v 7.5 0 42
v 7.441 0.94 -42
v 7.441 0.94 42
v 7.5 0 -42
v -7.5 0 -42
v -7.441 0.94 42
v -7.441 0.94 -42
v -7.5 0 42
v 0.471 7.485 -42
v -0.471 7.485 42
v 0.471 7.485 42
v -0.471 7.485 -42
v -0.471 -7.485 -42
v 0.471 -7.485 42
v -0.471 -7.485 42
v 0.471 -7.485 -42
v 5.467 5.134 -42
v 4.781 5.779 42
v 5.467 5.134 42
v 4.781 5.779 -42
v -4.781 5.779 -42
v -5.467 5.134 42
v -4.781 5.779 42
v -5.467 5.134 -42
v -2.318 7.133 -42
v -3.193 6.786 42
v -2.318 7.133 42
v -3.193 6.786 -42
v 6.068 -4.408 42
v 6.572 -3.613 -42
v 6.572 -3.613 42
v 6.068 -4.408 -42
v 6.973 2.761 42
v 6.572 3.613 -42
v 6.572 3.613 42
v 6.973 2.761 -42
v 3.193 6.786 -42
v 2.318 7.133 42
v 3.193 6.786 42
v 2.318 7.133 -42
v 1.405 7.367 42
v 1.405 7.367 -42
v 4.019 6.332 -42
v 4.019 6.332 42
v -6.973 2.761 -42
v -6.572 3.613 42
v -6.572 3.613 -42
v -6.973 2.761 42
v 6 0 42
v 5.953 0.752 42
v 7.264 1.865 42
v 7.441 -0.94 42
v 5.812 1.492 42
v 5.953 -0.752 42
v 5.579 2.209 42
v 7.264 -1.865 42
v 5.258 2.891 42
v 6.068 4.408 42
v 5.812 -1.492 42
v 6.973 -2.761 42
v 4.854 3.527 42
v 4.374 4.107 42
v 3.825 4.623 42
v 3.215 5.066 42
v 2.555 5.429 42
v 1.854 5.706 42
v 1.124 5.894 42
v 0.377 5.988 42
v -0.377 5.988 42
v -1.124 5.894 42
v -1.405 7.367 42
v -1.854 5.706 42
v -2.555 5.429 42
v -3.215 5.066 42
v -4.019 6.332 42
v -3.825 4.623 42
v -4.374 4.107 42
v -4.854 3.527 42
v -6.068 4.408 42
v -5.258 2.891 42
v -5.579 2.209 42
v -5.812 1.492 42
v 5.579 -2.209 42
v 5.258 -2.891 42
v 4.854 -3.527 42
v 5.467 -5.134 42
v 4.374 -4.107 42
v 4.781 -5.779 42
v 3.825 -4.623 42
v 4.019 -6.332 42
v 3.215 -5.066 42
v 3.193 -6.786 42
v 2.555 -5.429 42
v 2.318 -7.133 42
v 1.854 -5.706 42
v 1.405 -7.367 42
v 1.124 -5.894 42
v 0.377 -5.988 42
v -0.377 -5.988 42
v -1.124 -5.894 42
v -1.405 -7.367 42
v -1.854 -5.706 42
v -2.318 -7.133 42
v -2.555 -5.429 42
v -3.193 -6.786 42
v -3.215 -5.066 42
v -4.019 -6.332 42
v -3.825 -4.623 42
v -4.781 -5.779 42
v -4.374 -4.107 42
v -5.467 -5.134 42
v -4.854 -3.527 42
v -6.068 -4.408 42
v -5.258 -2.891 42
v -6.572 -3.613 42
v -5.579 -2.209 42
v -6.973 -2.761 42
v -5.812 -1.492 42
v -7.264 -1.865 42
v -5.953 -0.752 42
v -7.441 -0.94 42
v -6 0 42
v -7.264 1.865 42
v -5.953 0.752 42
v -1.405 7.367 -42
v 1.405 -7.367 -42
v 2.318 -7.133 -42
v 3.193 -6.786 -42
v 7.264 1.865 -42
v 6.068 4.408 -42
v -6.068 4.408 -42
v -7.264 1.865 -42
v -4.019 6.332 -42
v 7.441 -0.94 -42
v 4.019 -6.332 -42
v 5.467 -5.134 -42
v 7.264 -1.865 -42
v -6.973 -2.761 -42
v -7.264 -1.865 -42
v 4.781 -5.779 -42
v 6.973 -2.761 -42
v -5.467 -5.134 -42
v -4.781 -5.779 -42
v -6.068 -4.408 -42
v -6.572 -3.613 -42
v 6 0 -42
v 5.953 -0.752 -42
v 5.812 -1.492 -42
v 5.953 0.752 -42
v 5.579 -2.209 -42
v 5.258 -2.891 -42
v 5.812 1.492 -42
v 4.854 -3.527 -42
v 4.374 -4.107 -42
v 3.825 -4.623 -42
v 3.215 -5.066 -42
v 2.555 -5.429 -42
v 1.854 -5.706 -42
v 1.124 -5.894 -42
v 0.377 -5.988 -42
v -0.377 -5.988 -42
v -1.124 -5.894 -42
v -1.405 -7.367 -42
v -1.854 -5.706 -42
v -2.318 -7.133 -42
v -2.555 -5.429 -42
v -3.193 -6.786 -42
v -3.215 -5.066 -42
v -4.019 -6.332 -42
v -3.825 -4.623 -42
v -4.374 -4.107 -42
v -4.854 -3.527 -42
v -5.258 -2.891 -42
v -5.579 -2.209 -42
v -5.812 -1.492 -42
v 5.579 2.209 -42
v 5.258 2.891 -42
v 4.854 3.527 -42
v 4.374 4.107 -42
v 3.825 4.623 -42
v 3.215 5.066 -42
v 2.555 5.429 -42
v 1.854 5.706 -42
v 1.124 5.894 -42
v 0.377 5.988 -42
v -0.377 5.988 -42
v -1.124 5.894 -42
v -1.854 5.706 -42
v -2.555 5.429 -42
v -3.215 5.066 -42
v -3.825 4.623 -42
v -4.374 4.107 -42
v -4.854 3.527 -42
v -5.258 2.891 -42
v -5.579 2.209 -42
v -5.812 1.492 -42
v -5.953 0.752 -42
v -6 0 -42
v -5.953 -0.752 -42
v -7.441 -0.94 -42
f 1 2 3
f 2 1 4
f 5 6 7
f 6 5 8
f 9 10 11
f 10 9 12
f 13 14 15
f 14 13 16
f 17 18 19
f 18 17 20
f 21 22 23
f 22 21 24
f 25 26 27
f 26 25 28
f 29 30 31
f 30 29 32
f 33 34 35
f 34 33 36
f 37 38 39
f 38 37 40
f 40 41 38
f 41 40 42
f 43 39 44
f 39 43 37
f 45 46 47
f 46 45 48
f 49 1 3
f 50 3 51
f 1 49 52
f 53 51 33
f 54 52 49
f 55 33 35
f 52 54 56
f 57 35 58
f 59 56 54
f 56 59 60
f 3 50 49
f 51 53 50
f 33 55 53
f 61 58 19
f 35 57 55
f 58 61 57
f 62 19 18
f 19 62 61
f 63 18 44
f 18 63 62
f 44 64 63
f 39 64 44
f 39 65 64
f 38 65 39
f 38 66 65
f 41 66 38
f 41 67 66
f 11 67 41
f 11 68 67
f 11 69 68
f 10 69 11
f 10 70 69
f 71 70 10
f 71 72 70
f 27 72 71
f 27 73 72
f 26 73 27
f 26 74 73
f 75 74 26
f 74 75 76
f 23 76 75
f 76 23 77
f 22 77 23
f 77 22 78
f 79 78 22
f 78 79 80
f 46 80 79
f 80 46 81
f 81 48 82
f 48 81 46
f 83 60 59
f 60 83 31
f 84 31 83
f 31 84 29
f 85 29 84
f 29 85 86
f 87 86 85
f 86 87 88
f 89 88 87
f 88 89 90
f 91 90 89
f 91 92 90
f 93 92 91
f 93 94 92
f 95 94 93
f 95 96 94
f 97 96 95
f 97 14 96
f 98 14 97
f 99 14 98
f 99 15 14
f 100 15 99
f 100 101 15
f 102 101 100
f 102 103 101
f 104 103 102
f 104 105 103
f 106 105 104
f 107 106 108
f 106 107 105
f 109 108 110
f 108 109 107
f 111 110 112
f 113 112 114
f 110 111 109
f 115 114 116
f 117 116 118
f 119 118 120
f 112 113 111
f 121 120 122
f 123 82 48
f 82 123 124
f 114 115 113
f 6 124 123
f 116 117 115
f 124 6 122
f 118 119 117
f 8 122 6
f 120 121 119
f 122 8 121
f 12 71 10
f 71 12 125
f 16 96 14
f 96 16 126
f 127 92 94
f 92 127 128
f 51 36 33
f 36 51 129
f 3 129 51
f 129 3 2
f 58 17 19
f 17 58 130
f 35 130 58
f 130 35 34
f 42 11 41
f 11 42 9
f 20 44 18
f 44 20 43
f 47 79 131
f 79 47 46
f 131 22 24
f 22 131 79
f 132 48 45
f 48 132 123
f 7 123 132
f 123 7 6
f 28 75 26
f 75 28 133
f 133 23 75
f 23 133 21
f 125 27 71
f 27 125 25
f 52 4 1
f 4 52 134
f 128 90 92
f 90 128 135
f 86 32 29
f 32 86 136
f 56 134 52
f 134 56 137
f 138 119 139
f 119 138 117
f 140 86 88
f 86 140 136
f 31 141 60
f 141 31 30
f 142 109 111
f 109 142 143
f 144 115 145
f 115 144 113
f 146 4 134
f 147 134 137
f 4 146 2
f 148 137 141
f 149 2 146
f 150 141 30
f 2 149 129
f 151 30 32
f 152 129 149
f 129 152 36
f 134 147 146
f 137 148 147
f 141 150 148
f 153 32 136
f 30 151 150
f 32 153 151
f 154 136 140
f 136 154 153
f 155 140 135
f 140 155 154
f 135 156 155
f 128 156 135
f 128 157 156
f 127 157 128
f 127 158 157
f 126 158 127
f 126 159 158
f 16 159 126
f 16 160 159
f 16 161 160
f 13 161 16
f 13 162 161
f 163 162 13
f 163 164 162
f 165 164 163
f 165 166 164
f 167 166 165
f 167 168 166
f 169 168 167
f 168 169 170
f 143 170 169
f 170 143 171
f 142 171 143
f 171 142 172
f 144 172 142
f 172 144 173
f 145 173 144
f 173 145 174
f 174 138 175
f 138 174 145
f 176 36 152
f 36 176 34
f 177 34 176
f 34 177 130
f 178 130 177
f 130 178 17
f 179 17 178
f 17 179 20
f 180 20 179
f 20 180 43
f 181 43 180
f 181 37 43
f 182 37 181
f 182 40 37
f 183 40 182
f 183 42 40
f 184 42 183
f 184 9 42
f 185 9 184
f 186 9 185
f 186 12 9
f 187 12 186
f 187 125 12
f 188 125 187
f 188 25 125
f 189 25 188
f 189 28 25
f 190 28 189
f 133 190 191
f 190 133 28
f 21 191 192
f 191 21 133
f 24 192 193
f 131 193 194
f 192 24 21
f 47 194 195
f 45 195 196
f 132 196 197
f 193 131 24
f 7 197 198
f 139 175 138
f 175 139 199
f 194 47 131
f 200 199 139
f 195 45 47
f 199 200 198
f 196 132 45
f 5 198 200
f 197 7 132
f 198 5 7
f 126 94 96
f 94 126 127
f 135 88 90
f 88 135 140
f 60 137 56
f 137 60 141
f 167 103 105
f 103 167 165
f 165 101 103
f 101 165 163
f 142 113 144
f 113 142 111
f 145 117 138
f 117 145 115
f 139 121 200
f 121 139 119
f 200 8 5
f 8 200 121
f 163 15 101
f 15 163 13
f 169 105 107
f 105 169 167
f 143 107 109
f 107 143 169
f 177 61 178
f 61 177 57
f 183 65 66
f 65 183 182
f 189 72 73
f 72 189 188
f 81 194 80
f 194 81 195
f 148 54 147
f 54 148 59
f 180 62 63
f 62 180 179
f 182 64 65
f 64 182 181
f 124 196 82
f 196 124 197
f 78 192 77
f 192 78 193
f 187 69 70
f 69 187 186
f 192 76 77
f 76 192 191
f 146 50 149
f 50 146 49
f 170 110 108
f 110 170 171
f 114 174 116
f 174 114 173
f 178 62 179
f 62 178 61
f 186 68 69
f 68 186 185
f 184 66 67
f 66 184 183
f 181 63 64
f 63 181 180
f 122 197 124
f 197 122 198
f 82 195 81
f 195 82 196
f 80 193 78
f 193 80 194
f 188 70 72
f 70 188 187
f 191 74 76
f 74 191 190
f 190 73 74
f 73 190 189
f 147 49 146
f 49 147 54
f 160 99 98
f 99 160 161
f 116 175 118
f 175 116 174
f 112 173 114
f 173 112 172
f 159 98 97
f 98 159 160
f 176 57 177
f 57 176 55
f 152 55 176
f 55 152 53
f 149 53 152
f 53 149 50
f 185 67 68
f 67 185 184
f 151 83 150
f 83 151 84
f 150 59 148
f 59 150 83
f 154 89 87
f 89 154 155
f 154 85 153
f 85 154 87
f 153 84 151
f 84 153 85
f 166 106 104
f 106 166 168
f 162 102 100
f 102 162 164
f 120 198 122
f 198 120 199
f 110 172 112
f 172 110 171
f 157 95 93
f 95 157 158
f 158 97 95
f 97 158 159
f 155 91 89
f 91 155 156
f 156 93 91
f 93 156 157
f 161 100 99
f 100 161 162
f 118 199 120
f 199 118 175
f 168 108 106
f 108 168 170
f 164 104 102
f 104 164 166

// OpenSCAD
$fn = 50;


difference() {
	union() {
		translate(v = [0, 0, -42.0000000000]) {
			cylinder(h = 84, r = 7.5000000000);
		}
	}
	union() {
		translate(v = [0, 0, -100.0000000000]) {
			cylinder(h = 200, r = 6);
		}
	}
}
